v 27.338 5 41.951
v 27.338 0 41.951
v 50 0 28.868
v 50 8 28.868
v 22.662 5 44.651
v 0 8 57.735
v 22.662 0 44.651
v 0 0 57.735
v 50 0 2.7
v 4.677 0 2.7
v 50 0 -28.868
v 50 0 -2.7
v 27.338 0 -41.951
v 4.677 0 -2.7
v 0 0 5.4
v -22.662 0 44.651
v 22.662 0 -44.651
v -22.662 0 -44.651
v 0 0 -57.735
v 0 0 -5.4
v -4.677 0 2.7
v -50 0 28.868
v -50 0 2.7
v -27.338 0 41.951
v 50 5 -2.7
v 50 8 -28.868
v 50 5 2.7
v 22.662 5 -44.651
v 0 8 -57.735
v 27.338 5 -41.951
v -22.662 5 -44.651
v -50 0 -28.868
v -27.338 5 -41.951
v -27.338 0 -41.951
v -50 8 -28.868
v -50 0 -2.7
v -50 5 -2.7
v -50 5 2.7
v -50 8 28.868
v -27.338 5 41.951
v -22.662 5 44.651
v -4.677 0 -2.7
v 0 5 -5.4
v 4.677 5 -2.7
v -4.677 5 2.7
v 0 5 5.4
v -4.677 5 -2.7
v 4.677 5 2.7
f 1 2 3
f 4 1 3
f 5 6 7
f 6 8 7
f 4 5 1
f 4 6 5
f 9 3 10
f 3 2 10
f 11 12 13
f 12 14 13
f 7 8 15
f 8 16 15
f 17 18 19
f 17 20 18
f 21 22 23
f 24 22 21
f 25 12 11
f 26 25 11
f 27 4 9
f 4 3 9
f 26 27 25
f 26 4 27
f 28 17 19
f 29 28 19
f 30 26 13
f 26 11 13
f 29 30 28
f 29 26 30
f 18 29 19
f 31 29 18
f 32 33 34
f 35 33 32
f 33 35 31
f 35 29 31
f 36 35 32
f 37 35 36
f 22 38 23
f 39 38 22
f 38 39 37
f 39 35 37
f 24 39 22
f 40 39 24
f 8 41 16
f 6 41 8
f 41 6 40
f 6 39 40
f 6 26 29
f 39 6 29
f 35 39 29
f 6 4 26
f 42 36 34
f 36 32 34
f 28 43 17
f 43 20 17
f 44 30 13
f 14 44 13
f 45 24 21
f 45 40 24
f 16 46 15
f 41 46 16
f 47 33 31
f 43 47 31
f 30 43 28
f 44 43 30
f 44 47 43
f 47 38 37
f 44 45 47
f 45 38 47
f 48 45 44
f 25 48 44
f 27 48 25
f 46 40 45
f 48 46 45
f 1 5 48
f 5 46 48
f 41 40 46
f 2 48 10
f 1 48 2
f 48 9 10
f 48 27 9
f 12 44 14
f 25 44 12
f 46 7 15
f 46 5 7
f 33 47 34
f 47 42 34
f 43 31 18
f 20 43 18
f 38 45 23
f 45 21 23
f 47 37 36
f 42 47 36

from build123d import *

# Parameters (mm, degrees)
BOSS_EXTRUDE1_DEPTH     = 8
SKETCH2_W               = 100
SKETCH2_H               = 5.4
CUT_EXTRUDE_THIN1_DEPTH = 5


with BuildPart() as part:
    # Sketch1 → Boss-Extrude1 (new body)
    with BuildSketch(Plane(origin=(0, 0, 0), x_dir=(1, 0, 0), z_dir=(0, 1, 0))):
        Polygon((0, 57.735026919), (-50, 28.867513459), (-50, -28.867513459), (0, -57.735026919), (50, -28.867513459), (50, 28.867513459), align=None)
    extrude(amount=BOSS_EXTRUDE1_DEPTH)

    # Sketch2 → Cut-Extrude-Thin1 (cut)
    with BuildSketch(Plane.XZ):
        Polygon((-27.33826859, 41.951270189), (22.66173141, -44.651270189), (27.33826859, -41.951270189), (-22.66173141, 44.651270189), align=None)
        Polygon((22.66173141, 44.651270189), (-27.33826859, -41.951270189), (-22.66173141, -44.651270189), (27.33826859, 41.951270189), align=None)
        Rectangle(SKETCH2_W, SKETCH2_H)
    extrude(amount=-CUT_EXTRUDE_THIN1_DEPTH, mode=Mode.SUBTRACT)


solid = part.part
